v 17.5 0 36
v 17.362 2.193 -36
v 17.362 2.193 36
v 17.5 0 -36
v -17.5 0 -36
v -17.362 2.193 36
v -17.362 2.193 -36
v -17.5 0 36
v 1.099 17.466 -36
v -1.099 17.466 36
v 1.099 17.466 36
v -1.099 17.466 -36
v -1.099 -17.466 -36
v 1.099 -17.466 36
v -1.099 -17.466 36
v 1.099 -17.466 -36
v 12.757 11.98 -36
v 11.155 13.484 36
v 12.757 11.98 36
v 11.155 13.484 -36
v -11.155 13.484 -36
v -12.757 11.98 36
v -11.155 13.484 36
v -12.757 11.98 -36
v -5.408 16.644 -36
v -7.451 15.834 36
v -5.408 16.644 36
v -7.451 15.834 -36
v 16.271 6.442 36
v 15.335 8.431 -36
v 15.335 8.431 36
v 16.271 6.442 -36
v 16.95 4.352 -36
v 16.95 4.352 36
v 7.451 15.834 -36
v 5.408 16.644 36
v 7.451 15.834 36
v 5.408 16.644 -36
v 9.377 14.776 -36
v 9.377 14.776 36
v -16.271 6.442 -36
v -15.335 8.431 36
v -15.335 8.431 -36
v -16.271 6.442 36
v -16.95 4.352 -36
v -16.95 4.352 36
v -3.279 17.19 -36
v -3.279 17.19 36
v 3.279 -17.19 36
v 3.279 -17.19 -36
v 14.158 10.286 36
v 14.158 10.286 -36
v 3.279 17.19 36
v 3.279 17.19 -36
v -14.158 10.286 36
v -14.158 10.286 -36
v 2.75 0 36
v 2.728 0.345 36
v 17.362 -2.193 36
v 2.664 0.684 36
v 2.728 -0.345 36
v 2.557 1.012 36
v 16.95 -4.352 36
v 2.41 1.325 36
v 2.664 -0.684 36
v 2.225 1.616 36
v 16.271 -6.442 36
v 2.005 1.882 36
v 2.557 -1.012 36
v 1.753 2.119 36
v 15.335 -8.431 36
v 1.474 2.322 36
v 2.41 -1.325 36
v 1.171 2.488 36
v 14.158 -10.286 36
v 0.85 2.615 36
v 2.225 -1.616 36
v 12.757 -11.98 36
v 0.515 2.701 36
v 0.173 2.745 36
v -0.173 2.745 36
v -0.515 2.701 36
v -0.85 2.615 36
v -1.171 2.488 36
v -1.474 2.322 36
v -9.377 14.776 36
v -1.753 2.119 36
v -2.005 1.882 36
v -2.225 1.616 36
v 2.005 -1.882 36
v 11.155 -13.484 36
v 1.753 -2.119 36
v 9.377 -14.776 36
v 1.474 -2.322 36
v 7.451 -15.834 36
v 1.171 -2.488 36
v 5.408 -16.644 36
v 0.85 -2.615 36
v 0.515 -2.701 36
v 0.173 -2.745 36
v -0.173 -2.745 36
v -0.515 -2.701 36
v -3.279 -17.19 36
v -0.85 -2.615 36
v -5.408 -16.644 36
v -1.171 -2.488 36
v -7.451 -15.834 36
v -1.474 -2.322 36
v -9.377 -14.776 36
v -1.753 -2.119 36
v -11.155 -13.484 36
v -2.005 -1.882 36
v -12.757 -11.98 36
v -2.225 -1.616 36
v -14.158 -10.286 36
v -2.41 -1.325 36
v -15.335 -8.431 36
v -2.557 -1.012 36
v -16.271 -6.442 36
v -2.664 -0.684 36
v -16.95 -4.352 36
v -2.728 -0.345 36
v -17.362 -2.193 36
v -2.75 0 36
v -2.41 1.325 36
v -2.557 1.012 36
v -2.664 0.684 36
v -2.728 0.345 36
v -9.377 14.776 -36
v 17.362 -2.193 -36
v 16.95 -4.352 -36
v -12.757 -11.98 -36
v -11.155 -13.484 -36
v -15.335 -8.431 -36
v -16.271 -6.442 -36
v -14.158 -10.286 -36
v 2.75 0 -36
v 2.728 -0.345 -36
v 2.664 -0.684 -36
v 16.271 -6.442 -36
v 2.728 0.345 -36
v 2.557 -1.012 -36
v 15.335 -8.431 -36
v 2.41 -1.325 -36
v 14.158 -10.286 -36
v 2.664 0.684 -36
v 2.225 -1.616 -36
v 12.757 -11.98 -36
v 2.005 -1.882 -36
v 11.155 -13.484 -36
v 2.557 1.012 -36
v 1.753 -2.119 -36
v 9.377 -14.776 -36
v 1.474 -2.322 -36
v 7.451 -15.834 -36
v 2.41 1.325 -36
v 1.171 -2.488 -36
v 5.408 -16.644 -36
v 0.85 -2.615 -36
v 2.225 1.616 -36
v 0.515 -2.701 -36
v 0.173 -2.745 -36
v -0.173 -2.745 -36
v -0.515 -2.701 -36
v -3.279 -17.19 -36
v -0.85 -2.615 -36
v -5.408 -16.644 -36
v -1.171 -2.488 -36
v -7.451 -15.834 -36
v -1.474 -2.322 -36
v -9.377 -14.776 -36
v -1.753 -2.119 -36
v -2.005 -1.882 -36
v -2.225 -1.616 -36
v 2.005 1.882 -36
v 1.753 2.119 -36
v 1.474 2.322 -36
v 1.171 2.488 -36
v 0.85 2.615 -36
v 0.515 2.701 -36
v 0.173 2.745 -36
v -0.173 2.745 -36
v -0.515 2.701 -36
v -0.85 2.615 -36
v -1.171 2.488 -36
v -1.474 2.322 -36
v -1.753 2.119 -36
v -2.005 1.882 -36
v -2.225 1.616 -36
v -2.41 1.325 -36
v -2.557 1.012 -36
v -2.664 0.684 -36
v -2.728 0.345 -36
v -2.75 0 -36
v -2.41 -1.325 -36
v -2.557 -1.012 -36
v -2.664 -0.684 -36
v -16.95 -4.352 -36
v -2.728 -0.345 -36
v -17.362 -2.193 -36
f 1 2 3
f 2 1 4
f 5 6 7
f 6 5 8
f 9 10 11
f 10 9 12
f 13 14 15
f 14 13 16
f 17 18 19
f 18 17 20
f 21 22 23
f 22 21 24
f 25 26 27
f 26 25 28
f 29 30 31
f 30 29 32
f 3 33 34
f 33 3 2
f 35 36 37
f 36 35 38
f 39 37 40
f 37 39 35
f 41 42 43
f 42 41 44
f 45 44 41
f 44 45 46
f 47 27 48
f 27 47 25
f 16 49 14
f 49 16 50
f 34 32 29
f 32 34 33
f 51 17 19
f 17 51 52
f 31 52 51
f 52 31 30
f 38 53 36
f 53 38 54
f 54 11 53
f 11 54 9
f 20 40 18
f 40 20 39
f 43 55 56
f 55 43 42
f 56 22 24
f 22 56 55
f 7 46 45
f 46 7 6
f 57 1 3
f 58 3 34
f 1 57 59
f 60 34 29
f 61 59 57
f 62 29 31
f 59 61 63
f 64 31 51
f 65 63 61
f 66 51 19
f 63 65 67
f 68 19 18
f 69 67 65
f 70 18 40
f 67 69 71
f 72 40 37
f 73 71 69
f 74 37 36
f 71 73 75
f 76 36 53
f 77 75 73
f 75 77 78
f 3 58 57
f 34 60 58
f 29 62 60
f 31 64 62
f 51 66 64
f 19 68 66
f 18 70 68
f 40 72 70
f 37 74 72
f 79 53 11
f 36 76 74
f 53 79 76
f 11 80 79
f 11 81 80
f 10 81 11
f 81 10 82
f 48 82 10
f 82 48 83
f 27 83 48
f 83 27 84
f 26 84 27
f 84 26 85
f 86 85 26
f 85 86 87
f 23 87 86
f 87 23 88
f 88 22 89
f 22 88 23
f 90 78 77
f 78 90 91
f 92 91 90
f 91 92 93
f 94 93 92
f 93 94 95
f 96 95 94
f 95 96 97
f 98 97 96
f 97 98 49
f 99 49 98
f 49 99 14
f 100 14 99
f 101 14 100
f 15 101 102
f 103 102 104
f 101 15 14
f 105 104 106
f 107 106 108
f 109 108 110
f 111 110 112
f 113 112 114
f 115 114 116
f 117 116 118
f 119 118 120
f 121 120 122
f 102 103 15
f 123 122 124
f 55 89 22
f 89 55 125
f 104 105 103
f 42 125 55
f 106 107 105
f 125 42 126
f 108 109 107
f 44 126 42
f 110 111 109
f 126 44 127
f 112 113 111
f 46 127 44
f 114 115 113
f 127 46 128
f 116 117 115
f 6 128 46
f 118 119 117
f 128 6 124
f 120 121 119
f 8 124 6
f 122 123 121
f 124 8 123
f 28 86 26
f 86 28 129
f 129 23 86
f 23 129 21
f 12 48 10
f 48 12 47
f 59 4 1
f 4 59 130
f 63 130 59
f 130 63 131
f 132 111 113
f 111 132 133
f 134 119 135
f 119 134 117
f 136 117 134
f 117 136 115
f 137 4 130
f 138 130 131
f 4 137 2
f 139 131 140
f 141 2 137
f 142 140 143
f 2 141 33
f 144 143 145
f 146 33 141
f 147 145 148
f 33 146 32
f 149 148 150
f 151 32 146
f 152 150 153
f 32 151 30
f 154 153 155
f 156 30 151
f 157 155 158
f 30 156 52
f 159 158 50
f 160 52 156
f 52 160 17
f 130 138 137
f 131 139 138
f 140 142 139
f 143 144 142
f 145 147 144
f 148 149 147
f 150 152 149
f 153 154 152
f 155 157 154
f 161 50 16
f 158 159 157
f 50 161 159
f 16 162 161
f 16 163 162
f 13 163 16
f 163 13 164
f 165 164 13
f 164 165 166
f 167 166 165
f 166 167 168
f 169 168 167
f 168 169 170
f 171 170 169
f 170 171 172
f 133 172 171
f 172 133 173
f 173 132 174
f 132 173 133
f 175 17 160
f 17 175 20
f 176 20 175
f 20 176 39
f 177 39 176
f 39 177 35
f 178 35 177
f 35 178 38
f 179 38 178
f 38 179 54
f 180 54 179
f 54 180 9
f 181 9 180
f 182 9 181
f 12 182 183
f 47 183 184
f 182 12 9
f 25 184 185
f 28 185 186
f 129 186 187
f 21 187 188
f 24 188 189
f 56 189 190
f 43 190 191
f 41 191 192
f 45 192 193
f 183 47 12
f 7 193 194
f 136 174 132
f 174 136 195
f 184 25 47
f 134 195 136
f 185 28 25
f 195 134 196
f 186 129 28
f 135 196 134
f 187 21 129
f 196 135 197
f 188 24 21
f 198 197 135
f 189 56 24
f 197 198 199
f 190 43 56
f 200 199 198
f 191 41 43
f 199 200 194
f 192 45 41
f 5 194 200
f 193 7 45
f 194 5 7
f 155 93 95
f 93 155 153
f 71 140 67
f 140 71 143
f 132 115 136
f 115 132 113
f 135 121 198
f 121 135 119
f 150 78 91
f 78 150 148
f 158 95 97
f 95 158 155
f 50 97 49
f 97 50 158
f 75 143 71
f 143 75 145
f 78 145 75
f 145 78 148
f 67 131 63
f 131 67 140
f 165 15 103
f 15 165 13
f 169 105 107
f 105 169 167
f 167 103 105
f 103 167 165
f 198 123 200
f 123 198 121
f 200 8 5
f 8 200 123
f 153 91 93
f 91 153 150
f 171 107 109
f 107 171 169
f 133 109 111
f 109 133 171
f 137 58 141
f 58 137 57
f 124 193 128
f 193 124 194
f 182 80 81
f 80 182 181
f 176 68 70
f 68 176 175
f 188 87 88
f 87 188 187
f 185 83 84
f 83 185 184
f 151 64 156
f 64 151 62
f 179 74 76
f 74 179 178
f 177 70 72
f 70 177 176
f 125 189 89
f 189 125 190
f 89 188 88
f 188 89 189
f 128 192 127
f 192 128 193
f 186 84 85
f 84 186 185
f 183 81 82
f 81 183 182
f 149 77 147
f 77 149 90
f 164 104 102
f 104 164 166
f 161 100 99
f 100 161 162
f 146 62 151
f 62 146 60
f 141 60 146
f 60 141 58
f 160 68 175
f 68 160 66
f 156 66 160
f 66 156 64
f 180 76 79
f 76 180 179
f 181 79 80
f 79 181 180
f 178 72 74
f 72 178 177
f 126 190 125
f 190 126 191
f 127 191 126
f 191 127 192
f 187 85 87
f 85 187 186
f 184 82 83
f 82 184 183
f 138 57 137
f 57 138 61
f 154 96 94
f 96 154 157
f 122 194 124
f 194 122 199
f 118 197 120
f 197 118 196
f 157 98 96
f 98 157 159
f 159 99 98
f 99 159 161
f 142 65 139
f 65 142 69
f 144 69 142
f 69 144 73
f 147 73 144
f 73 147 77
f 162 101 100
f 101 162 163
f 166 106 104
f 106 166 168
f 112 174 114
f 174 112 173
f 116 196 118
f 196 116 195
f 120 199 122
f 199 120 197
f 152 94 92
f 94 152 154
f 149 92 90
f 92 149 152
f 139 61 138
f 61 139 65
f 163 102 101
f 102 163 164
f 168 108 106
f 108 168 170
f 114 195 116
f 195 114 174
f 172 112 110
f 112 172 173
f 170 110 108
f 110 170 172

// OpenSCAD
$fn = 50;


difference() {
	union() {
		translate(v = [0, 0, -36.0000000000]) {
			cylinder(h = 72, r = 17.5000000000);
		}
	}
	union() {
		translate(v = [0, 0, -100.0000000000]) {
			cylinder(h = 200, r = 2.7500000000);
		}
	}
}
